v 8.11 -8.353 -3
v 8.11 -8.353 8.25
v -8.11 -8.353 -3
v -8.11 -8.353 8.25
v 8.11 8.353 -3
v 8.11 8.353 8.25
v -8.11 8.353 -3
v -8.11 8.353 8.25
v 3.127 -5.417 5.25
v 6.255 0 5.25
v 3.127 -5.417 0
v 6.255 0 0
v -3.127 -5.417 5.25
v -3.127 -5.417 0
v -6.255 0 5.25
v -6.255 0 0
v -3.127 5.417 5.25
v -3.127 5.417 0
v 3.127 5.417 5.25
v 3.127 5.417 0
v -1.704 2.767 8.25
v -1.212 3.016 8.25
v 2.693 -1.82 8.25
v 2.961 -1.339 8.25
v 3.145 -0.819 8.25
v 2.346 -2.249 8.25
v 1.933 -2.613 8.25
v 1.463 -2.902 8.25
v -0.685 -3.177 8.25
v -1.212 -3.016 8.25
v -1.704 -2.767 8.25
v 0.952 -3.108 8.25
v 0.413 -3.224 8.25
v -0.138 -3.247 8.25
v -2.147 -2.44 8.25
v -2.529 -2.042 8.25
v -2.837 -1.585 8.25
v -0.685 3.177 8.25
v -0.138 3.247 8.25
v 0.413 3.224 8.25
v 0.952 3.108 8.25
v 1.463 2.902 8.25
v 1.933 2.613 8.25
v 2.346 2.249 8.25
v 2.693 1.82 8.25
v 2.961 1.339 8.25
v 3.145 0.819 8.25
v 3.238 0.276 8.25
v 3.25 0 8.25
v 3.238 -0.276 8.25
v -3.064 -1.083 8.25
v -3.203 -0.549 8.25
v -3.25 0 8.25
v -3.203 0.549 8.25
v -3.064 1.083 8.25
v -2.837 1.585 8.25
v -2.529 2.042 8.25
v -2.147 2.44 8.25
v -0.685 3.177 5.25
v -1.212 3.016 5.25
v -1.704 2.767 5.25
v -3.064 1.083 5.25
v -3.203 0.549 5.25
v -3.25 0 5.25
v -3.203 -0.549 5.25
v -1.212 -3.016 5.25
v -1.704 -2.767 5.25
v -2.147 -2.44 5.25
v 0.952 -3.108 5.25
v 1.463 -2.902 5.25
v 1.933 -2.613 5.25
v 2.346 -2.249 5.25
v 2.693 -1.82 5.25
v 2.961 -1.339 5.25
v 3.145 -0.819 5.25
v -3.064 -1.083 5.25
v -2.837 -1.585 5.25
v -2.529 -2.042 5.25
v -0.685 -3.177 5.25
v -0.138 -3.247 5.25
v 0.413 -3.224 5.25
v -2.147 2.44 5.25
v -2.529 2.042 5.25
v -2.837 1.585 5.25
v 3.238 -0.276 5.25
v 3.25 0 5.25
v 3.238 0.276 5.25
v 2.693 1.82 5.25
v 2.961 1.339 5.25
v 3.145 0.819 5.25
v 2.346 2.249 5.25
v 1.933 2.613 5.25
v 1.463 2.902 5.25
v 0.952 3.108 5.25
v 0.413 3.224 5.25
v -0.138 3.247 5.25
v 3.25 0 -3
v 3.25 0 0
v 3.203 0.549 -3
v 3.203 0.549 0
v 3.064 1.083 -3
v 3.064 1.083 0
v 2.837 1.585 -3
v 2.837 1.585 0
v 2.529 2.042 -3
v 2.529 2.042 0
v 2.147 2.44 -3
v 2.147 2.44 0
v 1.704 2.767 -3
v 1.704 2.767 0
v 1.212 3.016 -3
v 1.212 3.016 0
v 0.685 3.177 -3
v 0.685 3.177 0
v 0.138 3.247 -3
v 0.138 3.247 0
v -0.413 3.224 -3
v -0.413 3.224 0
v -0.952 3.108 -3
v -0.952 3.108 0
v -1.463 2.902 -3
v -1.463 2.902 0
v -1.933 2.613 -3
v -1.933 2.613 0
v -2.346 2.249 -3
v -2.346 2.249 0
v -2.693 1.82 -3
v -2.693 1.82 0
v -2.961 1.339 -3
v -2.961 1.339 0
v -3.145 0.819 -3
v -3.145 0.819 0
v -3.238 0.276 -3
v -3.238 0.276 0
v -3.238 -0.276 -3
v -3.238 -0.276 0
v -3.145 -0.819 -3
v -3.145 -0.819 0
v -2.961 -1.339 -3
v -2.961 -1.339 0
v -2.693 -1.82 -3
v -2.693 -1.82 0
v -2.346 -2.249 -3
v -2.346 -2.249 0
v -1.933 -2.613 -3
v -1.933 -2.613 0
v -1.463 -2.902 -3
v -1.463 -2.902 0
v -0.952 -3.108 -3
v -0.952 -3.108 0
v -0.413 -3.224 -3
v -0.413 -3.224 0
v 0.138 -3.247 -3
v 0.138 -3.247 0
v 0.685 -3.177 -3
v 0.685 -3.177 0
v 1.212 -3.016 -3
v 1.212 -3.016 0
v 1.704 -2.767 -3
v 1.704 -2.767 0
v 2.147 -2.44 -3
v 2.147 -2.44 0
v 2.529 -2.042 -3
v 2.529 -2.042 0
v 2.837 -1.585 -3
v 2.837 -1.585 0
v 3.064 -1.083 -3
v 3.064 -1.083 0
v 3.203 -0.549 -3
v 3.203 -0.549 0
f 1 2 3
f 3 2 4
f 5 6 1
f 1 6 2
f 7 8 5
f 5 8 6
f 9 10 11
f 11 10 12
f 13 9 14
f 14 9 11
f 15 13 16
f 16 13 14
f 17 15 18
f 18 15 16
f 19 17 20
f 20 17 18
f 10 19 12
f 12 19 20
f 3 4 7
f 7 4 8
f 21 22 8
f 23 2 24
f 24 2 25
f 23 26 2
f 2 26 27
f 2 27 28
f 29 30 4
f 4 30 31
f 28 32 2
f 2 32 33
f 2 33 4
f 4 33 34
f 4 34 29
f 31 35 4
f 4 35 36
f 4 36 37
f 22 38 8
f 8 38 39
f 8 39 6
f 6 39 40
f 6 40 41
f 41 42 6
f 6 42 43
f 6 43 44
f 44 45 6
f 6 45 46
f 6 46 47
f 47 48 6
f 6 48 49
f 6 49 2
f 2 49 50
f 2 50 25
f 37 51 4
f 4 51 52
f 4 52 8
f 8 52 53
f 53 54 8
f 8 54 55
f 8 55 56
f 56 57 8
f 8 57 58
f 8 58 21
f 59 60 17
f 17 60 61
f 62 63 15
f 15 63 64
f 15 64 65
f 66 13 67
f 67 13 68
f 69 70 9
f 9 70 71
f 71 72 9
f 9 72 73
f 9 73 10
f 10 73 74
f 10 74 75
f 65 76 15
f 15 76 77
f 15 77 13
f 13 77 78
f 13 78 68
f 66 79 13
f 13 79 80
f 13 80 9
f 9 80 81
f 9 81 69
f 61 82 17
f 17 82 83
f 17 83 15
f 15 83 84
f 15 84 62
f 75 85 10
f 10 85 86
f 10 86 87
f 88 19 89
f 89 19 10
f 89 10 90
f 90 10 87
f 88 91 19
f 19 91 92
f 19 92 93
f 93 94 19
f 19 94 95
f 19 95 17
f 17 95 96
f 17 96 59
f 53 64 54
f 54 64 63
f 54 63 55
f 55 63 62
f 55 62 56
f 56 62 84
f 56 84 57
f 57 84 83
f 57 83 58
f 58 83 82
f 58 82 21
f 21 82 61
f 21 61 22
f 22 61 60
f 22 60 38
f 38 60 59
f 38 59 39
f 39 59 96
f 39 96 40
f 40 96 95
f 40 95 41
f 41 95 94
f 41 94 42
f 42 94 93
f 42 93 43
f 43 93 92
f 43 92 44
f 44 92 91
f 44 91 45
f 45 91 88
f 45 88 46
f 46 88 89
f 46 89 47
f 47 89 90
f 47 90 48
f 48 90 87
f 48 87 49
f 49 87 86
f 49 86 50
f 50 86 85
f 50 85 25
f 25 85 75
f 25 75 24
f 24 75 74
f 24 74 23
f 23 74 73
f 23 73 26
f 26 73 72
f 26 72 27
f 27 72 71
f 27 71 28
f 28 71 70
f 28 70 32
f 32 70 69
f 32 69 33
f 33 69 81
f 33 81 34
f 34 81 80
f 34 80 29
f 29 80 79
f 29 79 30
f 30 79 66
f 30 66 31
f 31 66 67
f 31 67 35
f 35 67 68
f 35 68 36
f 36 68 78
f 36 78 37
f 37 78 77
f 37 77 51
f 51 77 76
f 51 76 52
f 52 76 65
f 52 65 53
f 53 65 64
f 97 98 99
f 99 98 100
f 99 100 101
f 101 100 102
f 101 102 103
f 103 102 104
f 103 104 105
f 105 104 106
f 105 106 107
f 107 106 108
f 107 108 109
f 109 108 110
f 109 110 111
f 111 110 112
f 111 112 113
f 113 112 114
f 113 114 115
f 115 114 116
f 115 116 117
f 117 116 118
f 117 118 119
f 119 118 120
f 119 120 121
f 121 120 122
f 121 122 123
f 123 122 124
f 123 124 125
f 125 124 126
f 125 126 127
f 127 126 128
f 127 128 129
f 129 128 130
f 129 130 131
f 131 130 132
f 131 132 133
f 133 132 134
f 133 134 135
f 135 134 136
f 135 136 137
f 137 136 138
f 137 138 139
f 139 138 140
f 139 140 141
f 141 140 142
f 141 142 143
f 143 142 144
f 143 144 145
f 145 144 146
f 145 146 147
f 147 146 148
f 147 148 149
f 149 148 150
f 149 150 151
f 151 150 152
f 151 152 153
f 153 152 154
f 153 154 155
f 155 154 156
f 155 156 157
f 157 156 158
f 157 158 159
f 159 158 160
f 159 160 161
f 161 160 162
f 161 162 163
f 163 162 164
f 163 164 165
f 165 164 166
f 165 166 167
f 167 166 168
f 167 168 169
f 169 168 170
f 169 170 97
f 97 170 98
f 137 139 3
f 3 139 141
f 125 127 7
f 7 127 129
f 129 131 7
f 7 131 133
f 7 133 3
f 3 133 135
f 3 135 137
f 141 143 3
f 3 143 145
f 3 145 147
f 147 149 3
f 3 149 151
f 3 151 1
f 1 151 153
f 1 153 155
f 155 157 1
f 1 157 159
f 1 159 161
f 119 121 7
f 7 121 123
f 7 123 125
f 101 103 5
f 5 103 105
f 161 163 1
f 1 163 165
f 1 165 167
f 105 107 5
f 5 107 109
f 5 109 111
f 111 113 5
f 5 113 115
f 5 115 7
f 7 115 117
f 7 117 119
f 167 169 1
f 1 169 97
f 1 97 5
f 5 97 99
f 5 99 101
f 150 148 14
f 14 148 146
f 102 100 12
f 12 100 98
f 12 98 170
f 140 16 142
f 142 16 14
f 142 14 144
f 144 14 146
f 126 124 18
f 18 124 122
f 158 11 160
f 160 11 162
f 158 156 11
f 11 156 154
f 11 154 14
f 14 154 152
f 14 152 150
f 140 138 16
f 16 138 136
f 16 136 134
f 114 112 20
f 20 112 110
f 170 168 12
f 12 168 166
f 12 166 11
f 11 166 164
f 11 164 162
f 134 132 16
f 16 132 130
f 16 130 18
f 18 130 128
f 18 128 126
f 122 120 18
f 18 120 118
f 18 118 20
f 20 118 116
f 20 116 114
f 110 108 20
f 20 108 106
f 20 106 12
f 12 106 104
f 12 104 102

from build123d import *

# Parameters (mm, degrees)
SKETCH1_W           = 16.2205508
SKETCH1_H           = 16.7068193
BOSS_EXTRUDE1_DEPTH = 5.25
SKETCH2_W           = 16.2205508
SKETCH2_H           = 16.7068193
SKETCH2_R           = 3.25
BOSS_EXTRUDE2_DEPTH = 3
BOSS_EXTRUDE3_START = -3
SKETCH1_3_W         = 16.2205508
SKETCH1_3_H         = 16.7068193
SKETCH1_3_R         = 3.25
BOSS_EXTRUDE3_DEPTH = 3


with BuildPart() as part:
    # Sketch1 → Boss-Extrude1 (new body)
    with BuildSketch(Plane.XY):
        Rectangle(SKETCH1_W, SKETCH1_H)
        Polygon((3.127313958, 5.416666667), (6.254627916, 0), (3.127313958, -5.416666667), (-3.127313958, -5.416666667), (-6.254627916, 0), (-3.127313958, 5.416666667), align=None, mode=Mode.SUBTRACT)
    extrude(amount=BOSS_EXTRUDE1_DEPTH)

    # Sketch2 → Boss-Extrude2 (add)
    with BuildSketch(Plane.XY.offset(5.25)):
        Rectangle(SKETCH2_W, SKETCH2_H)
        Circle(SKETCH2_R, mode=Mode.SUBTRACT)
    extrude(amount=BOSS_EXTRUDE2_DEPTH)

    # Sketch1<3> → Boss-Extrude3 (add)
    with BuildSketch(Plane.XY.offset(BOSS_EXTRUDE3_START)):
        Rectangle(SKETCH1_3_W, SKETCH1_3_H)
        Circle(SKETCH1_3_R, mode=Mode.SUBTRACT)
    extrude(amount=BOSS_EXTRUDE3_DEPTH)


solid = part.part
